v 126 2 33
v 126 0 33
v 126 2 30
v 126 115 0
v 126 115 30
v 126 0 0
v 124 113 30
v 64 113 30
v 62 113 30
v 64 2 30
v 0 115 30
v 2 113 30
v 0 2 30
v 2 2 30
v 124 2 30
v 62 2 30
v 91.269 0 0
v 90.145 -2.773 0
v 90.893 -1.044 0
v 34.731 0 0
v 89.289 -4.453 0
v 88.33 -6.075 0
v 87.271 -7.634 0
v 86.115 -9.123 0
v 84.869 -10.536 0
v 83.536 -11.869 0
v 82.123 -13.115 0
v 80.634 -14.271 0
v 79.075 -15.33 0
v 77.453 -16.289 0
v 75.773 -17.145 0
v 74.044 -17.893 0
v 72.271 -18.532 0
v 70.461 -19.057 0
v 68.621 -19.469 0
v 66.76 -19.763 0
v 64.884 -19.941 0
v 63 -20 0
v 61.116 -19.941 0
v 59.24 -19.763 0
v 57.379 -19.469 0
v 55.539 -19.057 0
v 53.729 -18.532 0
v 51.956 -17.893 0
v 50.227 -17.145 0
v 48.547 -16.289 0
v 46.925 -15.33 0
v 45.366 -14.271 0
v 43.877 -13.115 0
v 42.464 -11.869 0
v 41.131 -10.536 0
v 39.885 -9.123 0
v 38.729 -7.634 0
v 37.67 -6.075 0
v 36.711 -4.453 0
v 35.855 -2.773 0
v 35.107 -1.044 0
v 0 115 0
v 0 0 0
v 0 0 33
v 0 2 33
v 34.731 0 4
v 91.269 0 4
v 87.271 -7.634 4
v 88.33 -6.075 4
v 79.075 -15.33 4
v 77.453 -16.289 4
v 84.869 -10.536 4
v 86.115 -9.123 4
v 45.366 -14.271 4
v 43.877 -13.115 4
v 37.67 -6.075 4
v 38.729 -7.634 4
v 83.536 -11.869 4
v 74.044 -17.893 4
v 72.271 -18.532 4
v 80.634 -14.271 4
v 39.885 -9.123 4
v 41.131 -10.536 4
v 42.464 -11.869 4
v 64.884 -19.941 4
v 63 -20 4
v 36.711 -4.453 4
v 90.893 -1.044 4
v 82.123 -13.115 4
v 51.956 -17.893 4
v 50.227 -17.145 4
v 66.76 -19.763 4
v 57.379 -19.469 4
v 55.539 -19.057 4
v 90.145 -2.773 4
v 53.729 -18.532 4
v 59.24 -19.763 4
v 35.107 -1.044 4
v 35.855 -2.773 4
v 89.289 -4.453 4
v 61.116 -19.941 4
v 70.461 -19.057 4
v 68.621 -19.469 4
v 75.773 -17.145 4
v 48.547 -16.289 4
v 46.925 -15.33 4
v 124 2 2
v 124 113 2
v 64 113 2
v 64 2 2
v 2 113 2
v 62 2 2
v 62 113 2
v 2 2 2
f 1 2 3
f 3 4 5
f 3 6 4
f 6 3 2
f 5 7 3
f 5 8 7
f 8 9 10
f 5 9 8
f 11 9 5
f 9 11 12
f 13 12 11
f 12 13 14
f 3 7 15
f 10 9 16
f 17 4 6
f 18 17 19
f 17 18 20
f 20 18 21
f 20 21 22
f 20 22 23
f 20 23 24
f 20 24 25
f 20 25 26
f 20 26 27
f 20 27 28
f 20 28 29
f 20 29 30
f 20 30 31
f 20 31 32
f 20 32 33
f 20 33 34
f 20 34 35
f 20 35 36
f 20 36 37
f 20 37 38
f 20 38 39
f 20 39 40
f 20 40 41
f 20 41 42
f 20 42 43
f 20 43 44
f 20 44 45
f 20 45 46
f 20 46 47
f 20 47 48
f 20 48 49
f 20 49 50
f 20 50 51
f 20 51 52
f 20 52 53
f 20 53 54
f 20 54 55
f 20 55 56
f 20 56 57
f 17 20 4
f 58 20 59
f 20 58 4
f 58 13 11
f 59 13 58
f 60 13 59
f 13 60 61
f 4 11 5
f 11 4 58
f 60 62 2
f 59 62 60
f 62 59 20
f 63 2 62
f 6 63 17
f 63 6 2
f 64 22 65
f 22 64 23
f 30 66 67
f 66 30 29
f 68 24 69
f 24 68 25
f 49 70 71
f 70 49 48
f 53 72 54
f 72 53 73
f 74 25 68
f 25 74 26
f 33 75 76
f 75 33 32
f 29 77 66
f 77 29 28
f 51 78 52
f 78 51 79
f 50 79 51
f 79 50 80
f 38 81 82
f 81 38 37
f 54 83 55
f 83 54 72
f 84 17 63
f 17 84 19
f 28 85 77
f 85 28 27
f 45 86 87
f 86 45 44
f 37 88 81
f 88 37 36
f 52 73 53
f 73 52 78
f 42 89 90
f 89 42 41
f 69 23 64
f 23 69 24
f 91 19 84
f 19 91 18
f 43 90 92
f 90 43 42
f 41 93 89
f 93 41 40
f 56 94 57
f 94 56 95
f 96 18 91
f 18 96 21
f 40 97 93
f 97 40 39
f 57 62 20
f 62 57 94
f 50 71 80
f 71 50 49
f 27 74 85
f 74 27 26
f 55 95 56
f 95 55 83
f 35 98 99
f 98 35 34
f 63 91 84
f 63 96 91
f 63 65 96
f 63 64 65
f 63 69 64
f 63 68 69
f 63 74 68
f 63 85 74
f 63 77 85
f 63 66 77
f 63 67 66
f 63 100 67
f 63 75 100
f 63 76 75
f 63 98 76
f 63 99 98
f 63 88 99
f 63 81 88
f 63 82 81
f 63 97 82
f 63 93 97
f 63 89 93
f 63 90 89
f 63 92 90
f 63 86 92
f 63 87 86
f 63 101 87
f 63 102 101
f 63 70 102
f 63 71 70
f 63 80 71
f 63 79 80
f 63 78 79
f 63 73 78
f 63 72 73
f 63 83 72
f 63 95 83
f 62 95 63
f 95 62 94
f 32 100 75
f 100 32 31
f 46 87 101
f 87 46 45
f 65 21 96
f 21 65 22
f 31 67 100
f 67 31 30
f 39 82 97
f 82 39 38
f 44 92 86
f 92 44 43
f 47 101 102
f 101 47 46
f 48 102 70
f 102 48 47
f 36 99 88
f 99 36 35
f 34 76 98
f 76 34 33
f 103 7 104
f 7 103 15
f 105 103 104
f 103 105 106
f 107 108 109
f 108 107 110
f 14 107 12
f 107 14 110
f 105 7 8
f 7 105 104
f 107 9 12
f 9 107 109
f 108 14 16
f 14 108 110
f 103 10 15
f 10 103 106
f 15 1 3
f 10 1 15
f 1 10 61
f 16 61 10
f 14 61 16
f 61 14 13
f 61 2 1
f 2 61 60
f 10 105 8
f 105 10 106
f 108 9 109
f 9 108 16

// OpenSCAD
h1 = 30.0;
h2 = 33.0;
lg = 115.0;
wi = 126.0;
$fn = 100;

union() {
    difference(){
        union() {
            cube([wi, lg, h1], center = false);
            translate([wi/2, 10, 0]) {
                cylinder(h=4, r=30, center = false);
            }
        }
        translate([2,2,2]){
            cube([wi-4, lg-4, h1], center = false);
        }
    };
    cube([wi, 2, h2], center = false);
    translate([wi/2-1, 0, 0]){
        cube([2, lg, h1], center = false);
    }
};
